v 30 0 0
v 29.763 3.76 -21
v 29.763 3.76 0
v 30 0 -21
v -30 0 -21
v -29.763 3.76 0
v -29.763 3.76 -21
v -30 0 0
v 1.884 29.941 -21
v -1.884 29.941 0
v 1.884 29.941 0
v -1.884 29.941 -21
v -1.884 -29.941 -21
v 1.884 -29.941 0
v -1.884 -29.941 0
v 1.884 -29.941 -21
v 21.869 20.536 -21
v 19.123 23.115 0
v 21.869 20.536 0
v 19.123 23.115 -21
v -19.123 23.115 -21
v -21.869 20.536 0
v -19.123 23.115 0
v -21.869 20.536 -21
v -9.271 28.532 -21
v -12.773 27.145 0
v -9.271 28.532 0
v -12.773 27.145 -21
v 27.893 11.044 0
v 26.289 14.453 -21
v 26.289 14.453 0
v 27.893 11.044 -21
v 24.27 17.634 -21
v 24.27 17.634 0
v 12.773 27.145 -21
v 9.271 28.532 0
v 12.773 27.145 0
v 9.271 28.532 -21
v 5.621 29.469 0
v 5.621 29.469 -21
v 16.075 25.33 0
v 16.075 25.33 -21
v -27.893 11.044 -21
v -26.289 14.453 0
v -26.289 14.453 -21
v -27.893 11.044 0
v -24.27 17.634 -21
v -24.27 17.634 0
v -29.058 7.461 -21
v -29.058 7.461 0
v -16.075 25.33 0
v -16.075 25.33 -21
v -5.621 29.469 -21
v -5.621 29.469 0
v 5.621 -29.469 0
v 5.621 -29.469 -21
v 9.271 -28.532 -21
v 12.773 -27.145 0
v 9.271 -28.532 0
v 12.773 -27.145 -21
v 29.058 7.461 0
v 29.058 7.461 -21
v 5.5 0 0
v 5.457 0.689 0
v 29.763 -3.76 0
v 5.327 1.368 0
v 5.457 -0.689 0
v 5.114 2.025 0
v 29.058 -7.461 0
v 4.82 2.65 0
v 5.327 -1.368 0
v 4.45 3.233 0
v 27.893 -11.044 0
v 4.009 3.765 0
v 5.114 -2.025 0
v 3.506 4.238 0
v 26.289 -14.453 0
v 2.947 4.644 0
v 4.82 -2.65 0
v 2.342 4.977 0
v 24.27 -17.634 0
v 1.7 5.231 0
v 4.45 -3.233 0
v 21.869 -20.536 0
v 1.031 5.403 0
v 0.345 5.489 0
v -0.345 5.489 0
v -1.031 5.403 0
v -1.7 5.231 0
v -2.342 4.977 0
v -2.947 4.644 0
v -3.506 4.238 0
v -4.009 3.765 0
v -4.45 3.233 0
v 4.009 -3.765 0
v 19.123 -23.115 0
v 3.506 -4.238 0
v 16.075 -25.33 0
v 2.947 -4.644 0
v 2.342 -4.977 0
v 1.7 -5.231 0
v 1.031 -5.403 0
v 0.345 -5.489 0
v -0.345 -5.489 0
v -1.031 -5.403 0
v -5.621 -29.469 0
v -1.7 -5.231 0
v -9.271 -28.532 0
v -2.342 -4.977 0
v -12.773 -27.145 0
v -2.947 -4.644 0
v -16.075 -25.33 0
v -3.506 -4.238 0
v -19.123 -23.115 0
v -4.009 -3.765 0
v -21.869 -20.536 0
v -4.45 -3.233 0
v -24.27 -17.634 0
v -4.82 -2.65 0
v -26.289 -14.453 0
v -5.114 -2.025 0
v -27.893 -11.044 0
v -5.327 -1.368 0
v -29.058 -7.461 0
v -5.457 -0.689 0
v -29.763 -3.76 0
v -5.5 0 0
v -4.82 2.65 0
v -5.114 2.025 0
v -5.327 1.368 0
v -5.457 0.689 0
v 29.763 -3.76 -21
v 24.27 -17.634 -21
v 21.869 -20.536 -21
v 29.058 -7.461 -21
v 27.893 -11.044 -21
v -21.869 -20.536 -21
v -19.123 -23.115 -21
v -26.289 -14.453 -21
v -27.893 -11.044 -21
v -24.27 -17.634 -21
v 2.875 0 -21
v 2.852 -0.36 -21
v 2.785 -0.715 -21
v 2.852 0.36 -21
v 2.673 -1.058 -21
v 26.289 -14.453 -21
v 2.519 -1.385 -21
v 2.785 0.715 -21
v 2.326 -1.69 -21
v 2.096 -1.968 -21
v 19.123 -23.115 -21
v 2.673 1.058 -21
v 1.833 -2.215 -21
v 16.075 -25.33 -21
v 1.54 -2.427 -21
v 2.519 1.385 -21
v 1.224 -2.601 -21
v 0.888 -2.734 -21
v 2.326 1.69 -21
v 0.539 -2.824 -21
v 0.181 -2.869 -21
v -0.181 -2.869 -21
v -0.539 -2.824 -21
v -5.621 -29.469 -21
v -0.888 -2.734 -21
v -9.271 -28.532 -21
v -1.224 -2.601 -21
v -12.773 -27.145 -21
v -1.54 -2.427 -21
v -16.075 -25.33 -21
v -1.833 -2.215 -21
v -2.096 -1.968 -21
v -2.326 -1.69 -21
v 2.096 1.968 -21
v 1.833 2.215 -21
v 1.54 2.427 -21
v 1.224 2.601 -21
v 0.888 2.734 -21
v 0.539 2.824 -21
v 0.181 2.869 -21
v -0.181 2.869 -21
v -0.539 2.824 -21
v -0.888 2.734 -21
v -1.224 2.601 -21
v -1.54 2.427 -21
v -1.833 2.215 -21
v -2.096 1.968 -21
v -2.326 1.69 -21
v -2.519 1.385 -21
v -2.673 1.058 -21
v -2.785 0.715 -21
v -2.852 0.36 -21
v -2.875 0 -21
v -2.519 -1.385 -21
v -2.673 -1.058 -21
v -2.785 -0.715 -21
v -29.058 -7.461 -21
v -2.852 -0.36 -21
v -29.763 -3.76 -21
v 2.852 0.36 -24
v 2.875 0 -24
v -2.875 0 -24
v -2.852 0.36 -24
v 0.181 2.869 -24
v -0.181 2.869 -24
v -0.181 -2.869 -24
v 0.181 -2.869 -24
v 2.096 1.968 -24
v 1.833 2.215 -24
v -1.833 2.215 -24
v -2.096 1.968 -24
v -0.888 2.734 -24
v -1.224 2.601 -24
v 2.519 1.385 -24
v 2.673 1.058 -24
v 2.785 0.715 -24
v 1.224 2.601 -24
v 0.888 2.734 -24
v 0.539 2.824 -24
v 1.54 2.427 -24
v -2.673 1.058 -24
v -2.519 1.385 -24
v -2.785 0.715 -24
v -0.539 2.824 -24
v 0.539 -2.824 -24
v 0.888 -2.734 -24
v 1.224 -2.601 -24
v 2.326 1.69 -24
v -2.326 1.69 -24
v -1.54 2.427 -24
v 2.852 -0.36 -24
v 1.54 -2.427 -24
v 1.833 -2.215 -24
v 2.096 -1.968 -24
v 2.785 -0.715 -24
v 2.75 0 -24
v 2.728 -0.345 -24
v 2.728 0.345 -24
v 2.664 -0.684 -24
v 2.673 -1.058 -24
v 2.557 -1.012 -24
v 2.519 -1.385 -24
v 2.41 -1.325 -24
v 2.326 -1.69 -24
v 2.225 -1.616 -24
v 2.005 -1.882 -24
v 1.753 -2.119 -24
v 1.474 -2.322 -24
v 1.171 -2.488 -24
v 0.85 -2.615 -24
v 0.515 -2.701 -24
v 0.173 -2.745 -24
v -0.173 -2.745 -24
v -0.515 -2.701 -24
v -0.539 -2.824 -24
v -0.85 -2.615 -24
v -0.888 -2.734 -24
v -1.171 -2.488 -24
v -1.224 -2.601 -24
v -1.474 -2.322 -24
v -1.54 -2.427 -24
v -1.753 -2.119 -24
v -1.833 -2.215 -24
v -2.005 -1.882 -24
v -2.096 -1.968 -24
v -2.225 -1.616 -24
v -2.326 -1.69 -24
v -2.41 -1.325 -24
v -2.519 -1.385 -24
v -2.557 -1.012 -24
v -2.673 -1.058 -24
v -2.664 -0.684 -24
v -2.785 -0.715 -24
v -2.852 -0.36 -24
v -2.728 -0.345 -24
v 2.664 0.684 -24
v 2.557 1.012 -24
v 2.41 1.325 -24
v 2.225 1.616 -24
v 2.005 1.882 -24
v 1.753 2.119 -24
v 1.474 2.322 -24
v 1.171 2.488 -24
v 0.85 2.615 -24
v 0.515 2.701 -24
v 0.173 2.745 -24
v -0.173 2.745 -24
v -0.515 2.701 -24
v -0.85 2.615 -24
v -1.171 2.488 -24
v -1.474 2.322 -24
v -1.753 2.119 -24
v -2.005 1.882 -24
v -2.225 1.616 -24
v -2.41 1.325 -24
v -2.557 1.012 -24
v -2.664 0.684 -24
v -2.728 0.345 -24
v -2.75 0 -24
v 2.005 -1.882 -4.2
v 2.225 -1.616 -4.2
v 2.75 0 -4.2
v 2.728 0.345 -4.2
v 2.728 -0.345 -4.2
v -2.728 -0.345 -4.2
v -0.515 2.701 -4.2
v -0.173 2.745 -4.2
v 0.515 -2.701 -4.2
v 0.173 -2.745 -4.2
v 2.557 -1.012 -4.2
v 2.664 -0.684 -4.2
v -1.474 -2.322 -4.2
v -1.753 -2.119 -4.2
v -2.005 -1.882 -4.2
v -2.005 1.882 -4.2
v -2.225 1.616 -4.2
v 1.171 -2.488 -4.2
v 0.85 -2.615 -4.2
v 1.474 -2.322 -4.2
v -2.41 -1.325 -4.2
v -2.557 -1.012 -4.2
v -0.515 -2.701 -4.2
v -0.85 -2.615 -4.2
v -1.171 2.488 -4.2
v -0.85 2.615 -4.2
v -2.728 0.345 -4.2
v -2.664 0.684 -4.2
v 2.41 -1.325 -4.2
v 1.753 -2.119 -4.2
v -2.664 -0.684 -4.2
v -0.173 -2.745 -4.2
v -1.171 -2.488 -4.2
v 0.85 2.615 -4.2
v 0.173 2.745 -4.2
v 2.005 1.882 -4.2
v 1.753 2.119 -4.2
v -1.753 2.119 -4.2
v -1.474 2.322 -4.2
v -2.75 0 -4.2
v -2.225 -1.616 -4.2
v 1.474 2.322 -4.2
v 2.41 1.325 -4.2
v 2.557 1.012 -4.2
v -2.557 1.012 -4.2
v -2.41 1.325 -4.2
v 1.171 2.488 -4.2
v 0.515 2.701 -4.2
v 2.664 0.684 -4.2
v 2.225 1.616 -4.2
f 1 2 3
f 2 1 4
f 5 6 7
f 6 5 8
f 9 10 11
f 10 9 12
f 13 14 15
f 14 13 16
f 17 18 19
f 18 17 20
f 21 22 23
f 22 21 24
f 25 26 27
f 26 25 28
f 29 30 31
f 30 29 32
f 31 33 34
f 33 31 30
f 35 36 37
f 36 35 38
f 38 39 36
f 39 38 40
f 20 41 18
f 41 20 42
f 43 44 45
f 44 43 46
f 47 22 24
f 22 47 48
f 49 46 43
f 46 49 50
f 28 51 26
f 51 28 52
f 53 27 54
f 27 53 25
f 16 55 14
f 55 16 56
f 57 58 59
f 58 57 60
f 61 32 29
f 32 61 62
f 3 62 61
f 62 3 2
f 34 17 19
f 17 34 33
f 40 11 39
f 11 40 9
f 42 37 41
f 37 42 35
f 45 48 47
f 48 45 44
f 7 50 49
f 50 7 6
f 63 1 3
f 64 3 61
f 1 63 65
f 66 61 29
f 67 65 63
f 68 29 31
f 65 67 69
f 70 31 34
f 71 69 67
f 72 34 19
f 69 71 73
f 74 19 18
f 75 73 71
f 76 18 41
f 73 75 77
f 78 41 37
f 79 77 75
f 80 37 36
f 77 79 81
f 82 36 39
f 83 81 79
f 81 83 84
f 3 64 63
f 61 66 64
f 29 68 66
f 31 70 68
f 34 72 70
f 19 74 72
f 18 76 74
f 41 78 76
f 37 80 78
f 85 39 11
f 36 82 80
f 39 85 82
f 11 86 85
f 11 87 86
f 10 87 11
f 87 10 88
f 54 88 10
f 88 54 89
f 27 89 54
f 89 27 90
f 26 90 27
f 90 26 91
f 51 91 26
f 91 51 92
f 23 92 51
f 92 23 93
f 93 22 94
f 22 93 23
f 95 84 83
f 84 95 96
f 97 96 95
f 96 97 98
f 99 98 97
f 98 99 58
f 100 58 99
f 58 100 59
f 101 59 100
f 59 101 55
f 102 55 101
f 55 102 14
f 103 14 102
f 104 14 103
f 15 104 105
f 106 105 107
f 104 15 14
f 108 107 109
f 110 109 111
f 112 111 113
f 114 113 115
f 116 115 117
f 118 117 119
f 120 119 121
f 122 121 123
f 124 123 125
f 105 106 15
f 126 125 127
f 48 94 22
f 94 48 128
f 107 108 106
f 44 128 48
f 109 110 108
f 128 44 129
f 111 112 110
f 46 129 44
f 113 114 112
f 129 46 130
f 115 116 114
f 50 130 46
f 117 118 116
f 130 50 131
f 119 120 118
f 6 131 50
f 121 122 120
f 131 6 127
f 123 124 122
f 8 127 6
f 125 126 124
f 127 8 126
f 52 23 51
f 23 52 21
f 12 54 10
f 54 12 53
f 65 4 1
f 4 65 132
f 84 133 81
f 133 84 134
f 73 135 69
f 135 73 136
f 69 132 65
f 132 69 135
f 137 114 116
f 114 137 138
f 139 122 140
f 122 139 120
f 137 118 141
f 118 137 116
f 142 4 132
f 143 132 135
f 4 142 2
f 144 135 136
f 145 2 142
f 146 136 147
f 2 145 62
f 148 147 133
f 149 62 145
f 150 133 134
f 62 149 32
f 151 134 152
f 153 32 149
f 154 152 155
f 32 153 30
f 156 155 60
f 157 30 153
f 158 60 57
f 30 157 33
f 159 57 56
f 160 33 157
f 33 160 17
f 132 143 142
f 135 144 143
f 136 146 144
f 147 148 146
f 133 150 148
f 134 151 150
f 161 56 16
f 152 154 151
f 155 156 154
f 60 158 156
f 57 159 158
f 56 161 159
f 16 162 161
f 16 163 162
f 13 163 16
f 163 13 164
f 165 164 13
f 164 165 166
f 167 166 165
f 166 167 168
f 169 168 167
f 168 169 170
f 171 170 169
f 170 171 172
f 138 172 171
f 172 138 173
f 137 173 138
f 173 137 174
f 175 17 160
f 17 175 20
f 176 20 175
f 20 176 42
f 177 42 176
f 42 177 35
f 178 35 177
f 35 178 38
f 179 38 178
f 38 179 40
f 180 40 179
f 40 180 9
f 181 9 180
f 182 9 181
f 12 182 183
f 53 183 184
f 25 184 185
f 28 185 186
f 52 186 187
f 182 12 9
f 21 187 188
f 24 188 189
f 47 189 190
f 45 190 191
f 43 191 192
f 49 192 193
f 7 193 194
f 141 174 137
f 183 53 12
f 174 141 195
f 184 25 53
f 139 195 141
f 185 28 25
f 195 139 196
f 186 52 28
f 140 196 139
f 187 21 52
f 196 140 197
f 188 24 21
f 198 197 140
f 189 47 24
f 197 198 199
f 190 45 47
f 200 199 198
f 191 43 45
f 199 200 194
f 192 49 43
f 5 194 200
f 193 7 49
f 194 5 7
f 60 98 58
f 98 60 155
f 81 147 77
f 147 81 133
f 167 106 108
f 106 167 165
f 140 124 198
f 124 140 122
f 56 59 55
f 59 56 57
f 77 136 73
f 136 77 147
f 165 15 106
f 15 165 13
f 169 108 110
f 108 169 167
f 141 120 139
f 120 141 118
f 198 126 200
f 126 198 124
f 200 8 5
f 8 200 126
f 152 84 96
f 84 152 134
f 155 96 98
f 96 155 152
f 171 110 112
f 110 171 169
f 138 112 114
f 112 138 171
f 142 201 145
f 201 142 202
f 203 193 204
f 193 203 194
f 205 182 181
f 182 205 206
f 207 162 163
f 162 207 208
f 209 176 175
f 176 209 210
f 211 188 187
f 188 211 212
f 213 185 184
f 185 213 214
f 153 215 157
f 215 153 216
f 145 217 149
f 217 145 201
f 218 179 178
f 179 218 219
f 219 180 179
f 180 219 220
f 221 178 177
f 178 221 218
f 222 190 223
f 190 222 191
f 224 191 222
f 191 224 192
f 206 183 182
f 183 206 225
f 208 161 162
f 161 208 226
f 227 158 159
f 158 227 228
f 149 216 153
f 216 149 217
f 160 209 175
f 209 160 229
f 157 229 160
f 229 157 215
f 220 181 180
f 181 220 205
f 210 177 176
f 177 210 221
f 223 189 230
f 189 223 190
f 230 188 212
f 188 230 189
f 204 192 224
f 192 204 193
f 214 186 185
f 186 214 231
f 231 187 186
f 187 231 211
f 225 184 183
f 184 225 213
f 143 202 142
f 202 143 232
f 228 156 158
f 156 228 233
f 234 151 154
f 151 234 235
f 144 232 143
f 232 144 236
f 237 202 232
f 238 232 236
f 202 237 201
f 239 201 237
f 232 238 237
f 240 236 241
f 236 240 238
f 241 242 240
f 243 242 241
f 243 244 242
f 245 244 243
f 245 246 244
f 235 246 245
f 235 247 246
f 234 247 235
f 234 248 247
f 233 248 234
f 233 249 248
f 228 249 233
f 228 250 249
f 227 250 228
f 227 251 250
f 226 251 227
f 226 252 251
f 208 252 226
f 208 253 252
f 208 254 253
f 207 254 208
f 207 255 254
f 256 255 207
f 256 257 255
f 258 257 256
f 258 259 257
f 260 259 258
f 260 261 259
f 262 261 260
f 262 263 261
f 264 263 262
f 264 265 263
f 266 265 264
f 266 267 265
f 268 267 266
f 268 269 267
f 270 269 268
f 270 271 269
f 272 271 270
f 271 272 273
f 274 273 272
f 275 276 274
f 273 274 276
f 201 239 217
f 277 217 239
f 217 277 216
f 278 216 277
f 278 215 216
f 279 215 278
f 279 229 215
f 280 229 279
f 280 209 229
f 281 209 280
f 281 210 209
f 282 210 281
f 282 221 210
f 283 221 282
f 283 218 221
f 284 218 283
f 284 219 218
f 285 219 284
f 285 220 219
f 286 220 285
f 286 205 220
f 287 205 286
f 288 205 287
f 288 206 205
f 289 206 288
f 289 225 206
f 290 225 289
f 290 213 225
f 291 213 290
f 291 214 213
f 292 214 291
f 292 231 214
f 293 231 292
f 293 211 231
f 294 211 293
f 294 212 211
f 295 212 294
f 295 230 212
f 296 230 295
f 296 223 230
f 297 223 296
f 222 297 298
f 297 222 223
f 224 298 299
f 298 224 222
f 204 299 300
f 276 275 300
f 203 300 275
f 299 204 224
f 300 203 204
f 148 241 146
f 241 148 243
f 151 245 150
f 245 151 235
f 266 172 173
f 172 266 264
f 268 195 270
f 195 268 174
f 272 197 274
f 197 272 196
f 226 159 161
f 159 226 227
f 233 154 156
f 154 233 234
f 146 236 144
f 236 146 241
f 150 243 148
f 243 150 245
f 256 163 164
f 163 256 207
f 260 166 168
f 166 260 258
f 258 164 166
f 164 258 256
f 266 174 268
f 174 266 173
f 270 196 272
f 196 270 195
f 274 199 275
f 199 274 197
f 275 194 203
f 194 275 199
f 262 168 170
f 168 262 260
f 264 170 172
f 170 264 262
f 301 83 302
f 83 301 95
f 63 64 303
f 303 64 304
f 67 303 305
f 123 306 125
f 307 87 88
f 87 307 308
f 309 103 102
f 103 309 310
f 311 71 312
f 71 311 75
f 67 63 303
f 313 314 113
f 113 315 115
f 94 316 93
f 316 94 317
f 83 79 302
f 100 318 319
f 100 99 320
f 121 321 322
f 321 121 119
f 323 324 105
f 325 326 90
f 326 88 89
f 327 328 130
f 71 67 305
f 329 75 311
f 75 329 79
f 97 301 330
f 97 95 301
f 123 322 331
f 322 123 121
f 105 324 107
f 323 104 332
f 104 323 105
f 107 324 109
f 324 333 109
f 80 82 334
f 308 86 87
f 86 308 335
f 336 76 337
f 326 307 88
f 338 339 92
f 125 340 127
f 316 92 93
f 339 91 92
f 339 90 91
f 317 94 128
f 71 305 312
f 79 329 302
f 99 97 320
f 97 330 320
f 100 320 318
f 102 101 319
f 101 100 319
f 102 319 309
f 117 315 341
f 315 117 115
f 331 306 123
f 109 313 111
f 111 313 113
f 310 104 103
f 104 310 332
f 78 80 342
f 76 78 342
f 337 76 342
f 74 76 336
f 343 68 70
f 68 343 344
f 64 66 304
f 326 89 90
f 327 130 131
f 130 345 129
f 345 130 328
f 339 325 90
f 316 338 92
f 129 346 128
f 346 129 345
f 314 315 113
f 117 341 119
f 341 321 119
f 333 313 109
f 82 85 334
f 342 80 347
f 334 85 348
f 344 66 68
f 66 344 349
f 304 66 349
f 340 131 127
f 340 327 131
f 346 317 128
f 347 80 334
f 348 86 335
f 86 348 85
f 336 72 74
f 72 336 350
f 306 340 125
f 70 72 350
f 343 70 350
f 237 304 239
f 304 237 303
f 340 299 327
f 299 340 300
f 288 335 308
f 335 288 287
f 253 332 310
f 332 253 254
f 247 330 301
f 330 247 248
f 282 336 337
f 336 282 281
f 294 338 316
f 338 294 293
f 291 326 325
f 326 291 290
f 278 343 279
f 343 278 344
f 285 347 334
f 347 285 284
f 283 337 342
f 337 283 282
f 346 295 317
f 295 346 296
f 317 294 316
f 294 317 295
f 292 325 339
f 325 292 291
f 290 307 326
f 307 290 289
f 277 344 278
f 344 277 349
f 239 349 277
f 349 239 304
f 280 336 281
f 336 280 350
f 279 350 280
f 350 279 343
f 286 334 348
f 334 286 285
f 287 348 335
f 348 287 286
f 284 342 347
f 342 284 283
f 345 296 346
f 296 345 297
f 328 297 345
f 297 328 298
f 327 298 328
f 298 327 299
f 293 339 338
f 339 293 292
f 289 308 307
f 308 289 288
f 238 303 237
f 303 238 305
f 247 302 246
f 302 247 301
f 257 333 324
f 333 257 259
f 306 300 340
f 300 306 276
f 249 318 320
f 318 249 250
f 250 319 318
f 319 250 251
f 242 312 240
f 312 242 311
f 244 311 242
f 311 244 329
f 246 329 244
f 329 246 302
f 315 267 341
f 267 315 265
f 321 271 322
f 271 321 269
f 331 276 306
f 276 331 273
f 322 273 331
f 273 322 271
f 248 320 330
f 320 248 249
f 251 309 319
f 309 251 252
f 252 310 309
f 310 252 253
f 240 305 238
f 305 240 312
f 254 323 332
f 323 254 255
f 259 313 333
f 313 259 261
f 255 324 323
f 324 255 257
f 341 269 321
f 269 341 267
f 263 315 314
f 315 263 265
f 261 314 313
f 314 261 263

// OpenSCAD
$fn = 50;


difference() {
	union() {
		translate(v = [0, 0, -21.0000000000]) {
			cylinder(h = 21, r = 30.0000000000);
		}
		#translate(v = [0, 0, -24.0000000000]) {
			cylinder(h = 24, r = 2.8750000000);
		}
	}
	union() {
		translate(v = [0, 0, 0]) {
			rotate(a = [0, 0, 0]) {
				difference() {
					union() {
						translate(v = [0, 0, -24.0000000000]) {
							cylinder(h = 24, r = 2.2500000000);
						}
						translate(v = [0, 0, -4.2000000000]) {
							cylinder(h = 4.2000000000, r1 = 2.7500000000, r2 = 5.5000000000);
						}
						translate(v = [0, 0, -24.0000000000]) {
							cylinder(h = 24, r = 2.7500000000);
						}
						translate(v = [0, 0, -24.0000000000]) {
							cylinder(h = 24, r = 2.2500000000);
						}
					}
					union();
				}
			}
		}
	}
}
